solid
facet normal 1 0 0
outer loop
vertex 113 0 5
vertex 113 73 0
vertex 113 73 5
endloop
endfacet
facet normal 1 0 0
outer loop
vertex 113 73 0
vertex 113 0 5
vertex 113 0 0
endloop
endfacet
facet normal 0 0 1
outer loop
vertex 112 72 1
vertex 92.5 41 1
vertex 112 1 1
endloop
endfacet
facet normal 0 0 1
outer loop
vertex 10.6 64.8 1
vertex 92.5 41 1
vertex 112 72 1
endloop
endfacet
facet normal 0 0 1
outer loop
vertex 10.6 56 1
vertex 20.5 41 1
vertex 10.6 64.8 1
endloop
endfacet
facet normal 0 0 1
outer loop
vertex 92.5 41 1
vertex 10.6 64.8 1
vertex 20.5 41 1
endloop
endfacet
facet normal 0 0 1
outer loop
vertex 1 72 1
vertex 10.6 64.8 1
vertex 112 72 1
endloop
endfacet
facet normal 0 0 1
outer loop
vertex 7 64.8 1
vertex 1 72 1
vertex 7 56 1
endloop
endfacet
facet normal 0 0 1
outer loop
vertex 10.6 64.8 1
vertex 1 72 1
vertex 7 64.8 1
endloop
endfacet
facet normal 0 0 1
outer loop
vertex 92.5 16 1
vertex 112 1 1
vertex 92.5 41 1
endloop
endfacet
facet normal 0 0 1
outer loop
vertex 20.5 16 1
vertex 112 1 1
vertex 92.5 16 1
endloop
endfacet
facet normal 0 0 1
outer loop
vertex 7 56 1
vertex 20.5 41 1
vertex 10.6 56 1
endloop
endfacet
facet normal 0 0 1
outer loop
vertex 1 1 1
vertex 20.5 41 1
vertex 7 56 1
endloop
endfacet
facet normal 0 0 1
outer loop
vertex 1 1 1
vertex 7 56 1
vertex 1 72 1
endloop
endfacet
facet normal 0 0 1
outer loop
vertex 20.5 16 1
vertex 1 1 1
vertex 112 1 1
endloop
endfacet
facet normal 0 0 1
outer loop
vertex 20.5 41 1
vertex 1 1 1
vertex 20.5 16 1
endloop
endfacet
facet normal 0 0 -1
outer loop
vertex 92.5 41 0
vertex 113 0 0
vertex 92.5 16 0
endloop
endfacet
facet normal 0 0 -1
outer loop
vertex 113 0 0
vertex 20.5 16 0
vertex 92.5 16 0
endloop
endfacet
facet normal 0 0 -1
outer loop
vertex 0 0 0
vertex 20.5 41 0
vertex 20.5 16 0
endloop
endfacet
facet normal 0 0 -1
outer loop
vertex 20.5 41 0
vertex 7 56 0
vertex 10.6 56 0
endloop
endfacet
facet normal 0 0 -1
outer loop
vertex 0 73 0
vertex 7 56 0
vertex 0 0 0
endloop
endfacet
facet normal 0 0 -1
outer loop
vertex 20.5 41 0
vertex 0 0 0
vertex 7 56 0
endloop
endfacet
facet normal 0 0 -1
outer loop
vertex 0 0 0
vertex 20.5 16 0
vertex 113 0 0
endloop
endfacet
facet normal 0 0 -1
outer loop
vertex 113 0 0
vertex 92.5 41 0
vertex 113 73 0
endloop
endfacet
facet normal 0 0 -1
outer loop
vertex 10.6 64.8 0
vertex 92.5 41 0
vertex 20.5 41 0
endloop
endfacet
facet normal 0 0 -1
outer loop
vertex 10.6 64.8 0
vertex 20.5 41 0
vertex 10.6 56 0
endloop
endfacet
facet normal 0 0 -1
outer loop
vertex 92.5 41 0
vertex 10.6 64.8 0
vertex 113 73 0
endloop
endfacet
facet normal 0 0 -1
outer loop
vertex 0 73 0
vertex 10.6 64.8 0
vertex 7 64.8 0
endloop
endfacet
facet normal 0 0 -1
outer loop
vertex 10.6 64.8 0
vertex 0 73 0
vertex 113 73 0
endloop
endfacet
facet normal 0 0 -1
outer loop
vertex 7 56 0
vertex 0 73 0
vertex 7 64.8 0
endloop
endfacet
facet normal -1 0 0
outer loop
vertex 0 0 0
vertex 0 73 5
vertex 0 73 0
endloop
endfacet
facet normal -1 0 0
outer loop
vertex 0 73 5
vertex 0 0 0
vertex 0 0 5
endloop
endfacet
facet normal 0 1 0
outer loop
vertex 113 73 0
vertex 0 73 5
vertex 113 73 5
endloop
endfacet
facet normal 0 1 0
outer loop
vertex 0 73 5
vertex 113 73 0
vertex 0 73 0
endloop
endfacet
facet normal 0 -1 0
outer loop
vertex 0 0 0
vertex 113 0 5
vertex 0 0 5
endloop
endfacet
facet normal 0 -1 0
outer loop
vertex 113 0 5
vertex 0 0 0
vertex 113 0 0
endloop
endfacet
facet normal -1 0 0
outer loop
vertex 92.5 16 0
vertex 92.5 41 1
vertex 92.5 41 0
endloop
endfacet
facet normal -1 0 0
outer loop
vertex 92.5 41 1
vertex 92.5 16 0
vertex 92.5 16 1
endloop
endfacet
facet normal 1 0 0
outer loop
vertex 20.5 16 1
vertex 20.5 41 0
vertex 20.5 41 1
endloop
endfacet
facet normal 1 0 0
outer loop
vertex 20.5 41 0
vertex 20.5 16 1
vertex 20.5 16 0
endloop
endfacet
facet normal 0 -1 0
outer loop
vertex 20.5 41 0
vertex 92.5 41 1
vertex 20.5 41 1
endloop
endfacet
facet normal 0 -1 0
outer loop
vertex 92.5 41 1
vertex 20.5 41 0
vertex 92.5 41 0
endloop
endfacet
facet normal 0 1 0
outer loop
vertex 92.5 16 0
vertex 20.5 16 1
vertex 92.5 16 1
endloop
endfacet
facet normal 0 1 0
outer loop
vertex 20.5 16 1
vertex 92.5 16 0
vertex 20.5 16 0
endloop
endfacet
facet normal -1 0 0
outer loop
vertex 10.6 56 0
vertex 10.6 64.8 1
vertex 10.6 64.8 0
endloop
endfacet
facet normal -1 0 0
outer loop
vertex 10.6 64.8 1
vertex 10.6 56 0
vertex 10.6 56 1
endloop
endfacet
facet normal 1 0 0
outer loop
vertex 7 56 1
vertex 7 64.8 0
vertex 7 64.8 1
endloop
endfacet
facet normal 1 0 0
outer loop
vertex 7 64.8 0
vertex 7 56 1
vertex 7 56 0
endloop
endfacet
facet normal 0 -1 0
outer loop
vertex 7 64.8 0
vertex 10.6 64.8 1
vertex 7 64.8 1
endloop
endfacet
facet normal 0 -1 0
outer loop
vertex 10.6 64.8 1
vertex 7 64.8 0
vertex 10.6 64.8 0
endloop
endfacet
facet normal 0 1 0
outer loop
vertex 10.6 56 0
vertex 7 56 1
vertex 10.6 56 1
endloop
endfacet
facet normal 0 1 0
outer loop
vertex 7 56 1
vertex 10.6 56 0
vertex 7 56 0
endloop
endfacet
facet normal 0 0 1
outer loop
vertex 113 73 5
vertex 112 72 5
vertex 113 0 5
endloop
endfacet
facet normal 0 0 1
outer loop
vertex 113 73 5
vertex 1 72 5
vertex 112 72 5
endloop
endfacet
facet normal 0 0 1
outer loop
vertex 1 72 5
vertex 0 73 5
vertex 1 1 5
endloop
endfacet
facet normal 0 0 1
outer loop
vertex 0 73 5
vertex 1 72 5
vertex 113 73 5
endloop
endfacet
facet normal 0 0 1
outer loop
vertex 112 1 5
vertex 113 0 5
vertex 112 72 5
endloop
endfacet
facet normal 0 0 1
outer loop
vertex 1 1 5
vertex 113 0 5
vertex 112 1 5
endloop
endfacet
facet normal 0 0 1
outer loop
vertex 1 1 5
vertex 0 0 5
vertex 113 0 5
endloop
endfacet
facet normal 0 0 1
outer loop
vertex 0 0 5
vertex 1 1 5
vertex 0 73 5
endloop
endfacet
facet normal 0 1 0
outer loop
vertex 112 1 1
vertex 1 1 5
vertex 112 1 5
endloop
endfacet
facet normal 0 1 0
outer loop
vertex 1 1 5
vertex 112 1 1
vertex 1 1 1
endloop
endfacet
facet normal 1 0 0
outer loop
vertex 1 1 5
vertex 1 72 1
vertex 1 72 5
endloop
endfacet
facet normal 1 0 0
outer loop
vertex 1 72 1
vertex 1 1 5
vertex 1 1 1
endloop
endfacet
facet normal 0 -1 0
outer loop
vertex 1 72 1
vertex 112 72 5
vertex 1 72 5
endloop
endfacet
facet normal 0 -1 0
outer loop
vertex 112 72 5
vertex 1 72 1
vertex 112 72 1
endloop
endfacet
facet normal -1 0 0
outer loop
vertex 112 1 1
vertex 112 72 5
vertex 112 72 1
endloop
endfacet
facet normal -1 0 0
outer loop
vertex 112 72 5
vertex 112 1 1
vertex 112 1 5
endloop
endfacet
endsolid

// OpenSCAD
$fa = 0.1;
$fs = 0.1;

thickness = 1;
xLenght = 113;
yLenght = 73;
zLenght = 5;
cube([xLenght, thickness, zLenght]);
cube([thickness, yLenght, zLenght]);

difference() {
    cube([xLenght, yLenght, thickness]);
    translate([20.5, 16, -10]) {
        cube([72, 25, 25]);
    }
    
    translate([7, 56, -10]) {
        cube([3.6, 8.8, 25]);
    }
}

translate([0, yLenght - thickness, 0]) {
    cube([xLenght, thickness, zLenght]);
}

translate([xLenght - thickness, 0, 0]) {
    cube([thickness, yLenght, zLenght]);
}
